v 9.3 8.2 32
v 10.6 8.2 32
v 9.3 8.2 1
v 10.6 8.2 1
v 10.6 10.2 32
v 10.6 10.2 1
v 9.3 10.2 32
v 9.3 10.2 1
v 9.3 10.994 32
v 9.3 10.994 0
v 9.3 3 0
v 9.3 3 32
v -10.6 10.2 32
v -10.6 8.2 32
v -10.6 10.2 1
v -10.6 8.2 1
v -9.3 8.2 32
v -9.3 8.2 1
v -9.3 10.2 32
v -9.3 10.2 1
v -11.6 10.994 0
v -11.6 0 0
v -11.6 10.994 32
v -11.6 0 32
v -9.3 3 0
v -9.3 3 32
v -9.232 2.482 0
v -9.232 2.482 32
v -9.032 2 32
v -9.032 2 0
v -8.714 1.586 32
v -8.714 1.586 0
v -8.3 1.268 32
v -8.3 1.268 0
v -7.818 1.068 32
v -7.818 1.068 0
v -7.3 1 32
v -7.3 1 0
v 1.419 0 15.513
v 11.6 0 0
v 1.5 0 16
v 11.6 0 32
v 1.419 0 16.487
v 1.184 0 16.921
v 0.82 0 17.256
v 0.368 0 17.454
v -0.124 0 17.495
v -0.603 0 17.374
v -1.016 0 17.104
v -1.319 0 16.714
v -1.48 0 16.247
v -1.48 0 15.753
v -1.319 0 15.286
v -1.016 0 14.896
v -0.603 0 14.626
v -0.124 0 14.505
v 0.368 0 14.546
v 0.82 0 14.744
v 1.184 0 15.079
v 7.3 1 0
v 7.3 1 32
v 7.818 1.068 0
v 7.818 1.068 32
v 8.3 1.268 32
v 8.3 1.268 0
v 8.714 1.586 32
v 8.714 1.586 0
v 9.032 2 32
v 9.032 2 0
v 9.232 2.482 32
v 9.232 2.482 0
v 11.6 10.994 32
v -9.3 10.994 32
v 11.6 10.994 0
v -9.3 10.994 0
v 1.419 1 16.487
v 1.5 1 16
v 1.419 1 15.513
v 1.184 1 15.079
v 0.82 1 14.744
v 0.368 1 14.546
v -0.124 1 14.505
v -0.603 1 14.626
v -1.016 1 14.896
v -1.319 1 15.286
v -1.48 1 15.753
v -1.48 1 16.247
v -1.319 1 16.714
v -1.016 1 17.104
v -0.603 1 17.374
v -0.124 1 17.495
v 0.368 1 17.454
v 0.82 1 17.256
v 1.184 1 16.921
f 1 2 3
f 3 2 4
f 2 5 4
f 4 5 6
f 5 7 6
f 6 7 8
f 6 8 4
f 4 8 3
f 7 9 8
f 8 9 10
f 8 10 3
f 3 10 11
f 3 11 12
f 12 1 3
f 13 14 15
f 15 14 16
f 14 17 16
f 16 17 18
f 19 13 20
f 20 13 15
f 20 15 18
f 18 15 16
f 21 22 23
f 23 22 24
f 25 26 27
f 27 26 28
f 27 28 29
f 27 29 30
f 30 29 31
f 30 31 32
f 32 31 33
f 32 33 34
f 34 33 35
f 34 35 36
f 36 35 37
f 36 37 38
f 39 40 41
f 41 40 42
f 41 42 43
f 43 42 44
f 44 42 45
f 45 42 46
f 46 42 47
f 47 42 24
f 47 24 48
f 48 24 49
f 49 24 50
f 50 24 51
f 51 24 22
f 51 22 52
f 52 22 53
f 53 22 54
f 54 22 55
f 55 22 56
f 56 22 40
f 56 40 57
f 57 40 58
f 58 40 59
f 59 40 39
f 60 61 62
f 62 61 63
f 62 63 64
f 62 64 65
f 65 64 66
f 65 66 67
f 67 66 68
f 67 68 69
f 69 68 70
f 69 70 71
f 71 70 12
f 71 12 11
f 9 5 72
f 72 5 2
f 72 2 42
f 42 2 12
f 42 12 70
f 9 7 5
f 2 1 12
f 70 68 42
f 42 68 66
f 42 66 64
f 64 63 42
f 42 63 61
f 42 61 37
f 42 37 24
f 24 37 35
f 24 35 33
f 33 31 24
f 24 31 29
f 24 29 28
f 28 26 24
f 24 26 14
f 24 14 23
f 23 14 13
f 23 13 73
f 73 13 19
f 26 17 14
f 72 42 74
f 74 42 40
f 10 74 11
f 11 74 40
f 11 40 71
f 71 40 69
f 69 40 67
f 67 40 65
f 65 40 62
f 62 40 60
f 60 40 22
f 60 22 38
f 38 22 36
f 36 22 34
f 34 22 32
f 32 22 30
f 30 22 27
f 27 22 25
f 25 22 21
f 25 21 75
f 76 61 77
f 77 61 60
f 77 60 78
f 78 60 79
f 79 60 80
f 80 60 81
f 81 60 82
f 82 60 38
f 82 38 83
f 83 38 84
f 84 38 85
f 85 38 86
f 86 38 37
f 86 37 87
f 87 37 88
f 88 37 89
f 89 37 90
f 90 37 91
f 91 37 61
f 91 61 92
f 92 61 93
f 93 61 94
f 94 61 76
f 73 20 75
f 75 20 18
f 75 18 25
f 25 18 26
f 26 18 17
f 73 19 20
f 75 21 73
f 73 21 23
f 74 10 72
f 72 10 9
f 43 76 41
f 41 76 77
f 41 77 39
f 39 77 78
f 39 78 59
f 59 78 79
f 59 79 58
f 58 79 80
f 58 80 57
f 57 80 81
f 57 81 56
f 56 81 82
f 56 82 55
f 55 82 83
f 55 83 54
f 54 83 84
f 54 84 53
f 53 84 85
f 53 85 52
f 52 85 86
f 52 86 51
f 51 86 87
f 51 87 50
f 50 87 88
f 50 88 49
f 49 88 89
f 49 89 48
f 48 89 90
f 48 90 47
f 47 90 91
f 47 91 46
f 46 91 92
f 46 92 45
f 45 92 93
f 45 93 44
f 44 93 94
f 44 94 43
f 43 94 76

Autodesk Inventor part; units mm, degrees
ref_plane "YZ Plane" through (0, 0, 0) normal (1, 0, 0) x (0, 1, 0)
ref_plane "XZ Plane" through (0, 0, 0) normal (0, 1, 0) x (-1, 0, 0)
ref_plane "XY Plane" through (0, 0, 0) normal (0, 0, 1) x (1, 0, 0)
sketch "本体面" plane through (0, 0, 0) normal (0, 0, 1) x (1, 0, 0)
  line L0 (-11.6, 17) -> (11.6, 17)
  line L1 (11.6, 17) -> (11.6, 0)
  line L2 (11.6, 0) -> (-11.6, 0)
  line L3 (-11.6, 0) -> (-11.6, 17)
  point P0 (0, 0)
  point P1 (0, 0)
  dimension "d0" = 23.2
  dimension "d1" = 17
extrude "本体" add sketch "本体面" along normal blind 32
sketch "空洞面" plane through (0, 0, 32) normal (0, 0, 1) x (1, 0, 0)
  line L0 (-9.3, 11) -> (9.3, 11)
  line L1 (9.3, 11) -> (9.3, 3)
  line L2 (7.3, 1) -> (-7.3, 1)
  line L3 (-9.3, 3) -> (-9.3, 11)
  line L4 (11.6, 17) -> (-11.6, 17) projected
  arc A0 (-9.3, 3) -> (-7.3, 1) centre (-7.3, 3) ccw
  arc A1 (7.3, 1) -> (9.3, 3) centre (7.3, 3) ccw
  line L5 (-11.6, 0) -> (11.6, 0) projected
  point P0 (0, 0)
  point P1 (9.3, 1)
  point P2 (-9.3, 1)
  point P3 (0, 11)
  dimension "d4" = 18.6
  dimension "d6" = 2
  dimension "d31" = 1
  dimension "d32" = 10
extrude "空洞" cut sketch "空洞面" against normal blind 32
sketch "左溝面" plane through (0, 0, 32) normal (0, 0, 1) x (1, 0, 0)
  line L0 (-10.6, 10.2) -> (-9.3, 10.2)
  line L1 (-9.3, 10.2) -> (-9.3, 8.2)
  line L2 (-9.3, 8.2) -> (-10.6, 8.2)
  line L3 (-10.6, 8.2) -> (-10.6, 10.2)
  line L4 (11.6, 17) -> (-11.6, 17) construction
  line L5 (-11.6, 17) -> (-11.6, 0) construction
  line L6 (-9.3, 3) -> (-9.3, 11) construction
  line L7 (-9.3, 11) -> (9.3, 11) construction
  point P0 (0, 0)
  point P1 (-9.3, 28)
  dimension "d10" = 2
  dimension "d28" = 1
  dimension "d33" = 0.8
extrude "左溝" cut sketch "左溝面" against normal blind 31
sketch "右溝面" plane through (0, 0, 32) normal (0, 0, 1) x (1, 0, 0)
  line L0 (9.3, 10.2) -> (10.6, 10.2)
  line L1 (10.6, 10.2) -> (10.6, 8.2)
  line L2 (10.6, 8.2) -> (9.3, 8.2)
  line L3 (9.3, 8.2) -> (9.3, 10.2)
  line L4 (11.6, 0) -> (11.6, 17) construction
  line L5 (9.3, 11) -> (9.3, 3) construction
  line L6 (-9.3, 11) -> (9.3, 11) construction
  point P0 (0, 0)
  dimension "d22" = 2
  dimension "d30" = 1
  dimension "d34" = 0.8
extrude "右溝" cut sketch "右溝面" against normal blind 31
sketch "穴面" plane through (0, 0, 0) normal (0, 0, -1) x (-1, 0, 0)
  line L0 (-7.3, 15) -> (7.3, 15)
  line L1 (9.3, 13) -> (9.3, 4)
  line L2 (7.3, 2) -> (-7.3, 2)
  line L3 (-9.3, 4) -> (-9.3, 13)
  line L4 (11.6, 17) -> (-11.6, 17) construction
  line L5 (-11.6, 0) -> (11.6, 0) construction
  arc A0 (-7.3, 15) -> (-9.3, 13) centre (-7.3, 13) ccw
  arc A1 (9.3, 13) -> (7.3, 15) centre (7.3, 13) ccw
  arc A2 (-9.3, 4) -> (-7.3, 2) centre (-7.3, 4) ccw
  arc A3 (7.3, 2) -> (9.3, 4) centre (7.3, 4) ccw
  line L6 (9.3, 11) -> (9.3, 3) projected
  line L7 (-9.3, 3) -> (-9.3, 11) projected
  point P0 (0, 0)
  dimension "d41" = 2
  dimension "d44" = 2
  dimension "d45" = 2
sketch "スケッチ11" plane through (0, 0, 32) normal (0, 0, 1) x (1, 0, 0)
  line L0 (-11.6, 17) -> (11.6, 17) projected
  line L1 (11.6, 17) -> (11.6, 0) projected
  line L2 (-11.6, 17) -> (11.6, 17)
  line L3 (11.6, 17) -> (11.6, 10.9937)
  line L4 (11.6, 10.9937) -> (-11.6, 10.9937)
  line L5 (-11.6, 10.9937) -> (-11.6, 17)
  point P0 (0, 0)
extrude "押し出し9" cut sketch "スケッチ11" along normal through all both and the other way through all
sketch "スケッチ12" plane through (-7.3, 1, 32) normal (0, 1, 0) x (1, 0, 0)
  line L0 (14.6, 0) -> (0, 0) projected
  line L1 (0, 0) -> (0, 32) projected
  line L2 (0, 0) -> (-2, 0) projected
  line L3 (14.6, 0) -> (14.6, 32) projected
  circle A0 centre (7.3, 16) radius 1.5
  point P0 (7.3, 32)
  dimension "d65" = 3
extrude "押し出し10" cut sketch "スケッチ12" against normal through all
properties part number "HB5_holder"
